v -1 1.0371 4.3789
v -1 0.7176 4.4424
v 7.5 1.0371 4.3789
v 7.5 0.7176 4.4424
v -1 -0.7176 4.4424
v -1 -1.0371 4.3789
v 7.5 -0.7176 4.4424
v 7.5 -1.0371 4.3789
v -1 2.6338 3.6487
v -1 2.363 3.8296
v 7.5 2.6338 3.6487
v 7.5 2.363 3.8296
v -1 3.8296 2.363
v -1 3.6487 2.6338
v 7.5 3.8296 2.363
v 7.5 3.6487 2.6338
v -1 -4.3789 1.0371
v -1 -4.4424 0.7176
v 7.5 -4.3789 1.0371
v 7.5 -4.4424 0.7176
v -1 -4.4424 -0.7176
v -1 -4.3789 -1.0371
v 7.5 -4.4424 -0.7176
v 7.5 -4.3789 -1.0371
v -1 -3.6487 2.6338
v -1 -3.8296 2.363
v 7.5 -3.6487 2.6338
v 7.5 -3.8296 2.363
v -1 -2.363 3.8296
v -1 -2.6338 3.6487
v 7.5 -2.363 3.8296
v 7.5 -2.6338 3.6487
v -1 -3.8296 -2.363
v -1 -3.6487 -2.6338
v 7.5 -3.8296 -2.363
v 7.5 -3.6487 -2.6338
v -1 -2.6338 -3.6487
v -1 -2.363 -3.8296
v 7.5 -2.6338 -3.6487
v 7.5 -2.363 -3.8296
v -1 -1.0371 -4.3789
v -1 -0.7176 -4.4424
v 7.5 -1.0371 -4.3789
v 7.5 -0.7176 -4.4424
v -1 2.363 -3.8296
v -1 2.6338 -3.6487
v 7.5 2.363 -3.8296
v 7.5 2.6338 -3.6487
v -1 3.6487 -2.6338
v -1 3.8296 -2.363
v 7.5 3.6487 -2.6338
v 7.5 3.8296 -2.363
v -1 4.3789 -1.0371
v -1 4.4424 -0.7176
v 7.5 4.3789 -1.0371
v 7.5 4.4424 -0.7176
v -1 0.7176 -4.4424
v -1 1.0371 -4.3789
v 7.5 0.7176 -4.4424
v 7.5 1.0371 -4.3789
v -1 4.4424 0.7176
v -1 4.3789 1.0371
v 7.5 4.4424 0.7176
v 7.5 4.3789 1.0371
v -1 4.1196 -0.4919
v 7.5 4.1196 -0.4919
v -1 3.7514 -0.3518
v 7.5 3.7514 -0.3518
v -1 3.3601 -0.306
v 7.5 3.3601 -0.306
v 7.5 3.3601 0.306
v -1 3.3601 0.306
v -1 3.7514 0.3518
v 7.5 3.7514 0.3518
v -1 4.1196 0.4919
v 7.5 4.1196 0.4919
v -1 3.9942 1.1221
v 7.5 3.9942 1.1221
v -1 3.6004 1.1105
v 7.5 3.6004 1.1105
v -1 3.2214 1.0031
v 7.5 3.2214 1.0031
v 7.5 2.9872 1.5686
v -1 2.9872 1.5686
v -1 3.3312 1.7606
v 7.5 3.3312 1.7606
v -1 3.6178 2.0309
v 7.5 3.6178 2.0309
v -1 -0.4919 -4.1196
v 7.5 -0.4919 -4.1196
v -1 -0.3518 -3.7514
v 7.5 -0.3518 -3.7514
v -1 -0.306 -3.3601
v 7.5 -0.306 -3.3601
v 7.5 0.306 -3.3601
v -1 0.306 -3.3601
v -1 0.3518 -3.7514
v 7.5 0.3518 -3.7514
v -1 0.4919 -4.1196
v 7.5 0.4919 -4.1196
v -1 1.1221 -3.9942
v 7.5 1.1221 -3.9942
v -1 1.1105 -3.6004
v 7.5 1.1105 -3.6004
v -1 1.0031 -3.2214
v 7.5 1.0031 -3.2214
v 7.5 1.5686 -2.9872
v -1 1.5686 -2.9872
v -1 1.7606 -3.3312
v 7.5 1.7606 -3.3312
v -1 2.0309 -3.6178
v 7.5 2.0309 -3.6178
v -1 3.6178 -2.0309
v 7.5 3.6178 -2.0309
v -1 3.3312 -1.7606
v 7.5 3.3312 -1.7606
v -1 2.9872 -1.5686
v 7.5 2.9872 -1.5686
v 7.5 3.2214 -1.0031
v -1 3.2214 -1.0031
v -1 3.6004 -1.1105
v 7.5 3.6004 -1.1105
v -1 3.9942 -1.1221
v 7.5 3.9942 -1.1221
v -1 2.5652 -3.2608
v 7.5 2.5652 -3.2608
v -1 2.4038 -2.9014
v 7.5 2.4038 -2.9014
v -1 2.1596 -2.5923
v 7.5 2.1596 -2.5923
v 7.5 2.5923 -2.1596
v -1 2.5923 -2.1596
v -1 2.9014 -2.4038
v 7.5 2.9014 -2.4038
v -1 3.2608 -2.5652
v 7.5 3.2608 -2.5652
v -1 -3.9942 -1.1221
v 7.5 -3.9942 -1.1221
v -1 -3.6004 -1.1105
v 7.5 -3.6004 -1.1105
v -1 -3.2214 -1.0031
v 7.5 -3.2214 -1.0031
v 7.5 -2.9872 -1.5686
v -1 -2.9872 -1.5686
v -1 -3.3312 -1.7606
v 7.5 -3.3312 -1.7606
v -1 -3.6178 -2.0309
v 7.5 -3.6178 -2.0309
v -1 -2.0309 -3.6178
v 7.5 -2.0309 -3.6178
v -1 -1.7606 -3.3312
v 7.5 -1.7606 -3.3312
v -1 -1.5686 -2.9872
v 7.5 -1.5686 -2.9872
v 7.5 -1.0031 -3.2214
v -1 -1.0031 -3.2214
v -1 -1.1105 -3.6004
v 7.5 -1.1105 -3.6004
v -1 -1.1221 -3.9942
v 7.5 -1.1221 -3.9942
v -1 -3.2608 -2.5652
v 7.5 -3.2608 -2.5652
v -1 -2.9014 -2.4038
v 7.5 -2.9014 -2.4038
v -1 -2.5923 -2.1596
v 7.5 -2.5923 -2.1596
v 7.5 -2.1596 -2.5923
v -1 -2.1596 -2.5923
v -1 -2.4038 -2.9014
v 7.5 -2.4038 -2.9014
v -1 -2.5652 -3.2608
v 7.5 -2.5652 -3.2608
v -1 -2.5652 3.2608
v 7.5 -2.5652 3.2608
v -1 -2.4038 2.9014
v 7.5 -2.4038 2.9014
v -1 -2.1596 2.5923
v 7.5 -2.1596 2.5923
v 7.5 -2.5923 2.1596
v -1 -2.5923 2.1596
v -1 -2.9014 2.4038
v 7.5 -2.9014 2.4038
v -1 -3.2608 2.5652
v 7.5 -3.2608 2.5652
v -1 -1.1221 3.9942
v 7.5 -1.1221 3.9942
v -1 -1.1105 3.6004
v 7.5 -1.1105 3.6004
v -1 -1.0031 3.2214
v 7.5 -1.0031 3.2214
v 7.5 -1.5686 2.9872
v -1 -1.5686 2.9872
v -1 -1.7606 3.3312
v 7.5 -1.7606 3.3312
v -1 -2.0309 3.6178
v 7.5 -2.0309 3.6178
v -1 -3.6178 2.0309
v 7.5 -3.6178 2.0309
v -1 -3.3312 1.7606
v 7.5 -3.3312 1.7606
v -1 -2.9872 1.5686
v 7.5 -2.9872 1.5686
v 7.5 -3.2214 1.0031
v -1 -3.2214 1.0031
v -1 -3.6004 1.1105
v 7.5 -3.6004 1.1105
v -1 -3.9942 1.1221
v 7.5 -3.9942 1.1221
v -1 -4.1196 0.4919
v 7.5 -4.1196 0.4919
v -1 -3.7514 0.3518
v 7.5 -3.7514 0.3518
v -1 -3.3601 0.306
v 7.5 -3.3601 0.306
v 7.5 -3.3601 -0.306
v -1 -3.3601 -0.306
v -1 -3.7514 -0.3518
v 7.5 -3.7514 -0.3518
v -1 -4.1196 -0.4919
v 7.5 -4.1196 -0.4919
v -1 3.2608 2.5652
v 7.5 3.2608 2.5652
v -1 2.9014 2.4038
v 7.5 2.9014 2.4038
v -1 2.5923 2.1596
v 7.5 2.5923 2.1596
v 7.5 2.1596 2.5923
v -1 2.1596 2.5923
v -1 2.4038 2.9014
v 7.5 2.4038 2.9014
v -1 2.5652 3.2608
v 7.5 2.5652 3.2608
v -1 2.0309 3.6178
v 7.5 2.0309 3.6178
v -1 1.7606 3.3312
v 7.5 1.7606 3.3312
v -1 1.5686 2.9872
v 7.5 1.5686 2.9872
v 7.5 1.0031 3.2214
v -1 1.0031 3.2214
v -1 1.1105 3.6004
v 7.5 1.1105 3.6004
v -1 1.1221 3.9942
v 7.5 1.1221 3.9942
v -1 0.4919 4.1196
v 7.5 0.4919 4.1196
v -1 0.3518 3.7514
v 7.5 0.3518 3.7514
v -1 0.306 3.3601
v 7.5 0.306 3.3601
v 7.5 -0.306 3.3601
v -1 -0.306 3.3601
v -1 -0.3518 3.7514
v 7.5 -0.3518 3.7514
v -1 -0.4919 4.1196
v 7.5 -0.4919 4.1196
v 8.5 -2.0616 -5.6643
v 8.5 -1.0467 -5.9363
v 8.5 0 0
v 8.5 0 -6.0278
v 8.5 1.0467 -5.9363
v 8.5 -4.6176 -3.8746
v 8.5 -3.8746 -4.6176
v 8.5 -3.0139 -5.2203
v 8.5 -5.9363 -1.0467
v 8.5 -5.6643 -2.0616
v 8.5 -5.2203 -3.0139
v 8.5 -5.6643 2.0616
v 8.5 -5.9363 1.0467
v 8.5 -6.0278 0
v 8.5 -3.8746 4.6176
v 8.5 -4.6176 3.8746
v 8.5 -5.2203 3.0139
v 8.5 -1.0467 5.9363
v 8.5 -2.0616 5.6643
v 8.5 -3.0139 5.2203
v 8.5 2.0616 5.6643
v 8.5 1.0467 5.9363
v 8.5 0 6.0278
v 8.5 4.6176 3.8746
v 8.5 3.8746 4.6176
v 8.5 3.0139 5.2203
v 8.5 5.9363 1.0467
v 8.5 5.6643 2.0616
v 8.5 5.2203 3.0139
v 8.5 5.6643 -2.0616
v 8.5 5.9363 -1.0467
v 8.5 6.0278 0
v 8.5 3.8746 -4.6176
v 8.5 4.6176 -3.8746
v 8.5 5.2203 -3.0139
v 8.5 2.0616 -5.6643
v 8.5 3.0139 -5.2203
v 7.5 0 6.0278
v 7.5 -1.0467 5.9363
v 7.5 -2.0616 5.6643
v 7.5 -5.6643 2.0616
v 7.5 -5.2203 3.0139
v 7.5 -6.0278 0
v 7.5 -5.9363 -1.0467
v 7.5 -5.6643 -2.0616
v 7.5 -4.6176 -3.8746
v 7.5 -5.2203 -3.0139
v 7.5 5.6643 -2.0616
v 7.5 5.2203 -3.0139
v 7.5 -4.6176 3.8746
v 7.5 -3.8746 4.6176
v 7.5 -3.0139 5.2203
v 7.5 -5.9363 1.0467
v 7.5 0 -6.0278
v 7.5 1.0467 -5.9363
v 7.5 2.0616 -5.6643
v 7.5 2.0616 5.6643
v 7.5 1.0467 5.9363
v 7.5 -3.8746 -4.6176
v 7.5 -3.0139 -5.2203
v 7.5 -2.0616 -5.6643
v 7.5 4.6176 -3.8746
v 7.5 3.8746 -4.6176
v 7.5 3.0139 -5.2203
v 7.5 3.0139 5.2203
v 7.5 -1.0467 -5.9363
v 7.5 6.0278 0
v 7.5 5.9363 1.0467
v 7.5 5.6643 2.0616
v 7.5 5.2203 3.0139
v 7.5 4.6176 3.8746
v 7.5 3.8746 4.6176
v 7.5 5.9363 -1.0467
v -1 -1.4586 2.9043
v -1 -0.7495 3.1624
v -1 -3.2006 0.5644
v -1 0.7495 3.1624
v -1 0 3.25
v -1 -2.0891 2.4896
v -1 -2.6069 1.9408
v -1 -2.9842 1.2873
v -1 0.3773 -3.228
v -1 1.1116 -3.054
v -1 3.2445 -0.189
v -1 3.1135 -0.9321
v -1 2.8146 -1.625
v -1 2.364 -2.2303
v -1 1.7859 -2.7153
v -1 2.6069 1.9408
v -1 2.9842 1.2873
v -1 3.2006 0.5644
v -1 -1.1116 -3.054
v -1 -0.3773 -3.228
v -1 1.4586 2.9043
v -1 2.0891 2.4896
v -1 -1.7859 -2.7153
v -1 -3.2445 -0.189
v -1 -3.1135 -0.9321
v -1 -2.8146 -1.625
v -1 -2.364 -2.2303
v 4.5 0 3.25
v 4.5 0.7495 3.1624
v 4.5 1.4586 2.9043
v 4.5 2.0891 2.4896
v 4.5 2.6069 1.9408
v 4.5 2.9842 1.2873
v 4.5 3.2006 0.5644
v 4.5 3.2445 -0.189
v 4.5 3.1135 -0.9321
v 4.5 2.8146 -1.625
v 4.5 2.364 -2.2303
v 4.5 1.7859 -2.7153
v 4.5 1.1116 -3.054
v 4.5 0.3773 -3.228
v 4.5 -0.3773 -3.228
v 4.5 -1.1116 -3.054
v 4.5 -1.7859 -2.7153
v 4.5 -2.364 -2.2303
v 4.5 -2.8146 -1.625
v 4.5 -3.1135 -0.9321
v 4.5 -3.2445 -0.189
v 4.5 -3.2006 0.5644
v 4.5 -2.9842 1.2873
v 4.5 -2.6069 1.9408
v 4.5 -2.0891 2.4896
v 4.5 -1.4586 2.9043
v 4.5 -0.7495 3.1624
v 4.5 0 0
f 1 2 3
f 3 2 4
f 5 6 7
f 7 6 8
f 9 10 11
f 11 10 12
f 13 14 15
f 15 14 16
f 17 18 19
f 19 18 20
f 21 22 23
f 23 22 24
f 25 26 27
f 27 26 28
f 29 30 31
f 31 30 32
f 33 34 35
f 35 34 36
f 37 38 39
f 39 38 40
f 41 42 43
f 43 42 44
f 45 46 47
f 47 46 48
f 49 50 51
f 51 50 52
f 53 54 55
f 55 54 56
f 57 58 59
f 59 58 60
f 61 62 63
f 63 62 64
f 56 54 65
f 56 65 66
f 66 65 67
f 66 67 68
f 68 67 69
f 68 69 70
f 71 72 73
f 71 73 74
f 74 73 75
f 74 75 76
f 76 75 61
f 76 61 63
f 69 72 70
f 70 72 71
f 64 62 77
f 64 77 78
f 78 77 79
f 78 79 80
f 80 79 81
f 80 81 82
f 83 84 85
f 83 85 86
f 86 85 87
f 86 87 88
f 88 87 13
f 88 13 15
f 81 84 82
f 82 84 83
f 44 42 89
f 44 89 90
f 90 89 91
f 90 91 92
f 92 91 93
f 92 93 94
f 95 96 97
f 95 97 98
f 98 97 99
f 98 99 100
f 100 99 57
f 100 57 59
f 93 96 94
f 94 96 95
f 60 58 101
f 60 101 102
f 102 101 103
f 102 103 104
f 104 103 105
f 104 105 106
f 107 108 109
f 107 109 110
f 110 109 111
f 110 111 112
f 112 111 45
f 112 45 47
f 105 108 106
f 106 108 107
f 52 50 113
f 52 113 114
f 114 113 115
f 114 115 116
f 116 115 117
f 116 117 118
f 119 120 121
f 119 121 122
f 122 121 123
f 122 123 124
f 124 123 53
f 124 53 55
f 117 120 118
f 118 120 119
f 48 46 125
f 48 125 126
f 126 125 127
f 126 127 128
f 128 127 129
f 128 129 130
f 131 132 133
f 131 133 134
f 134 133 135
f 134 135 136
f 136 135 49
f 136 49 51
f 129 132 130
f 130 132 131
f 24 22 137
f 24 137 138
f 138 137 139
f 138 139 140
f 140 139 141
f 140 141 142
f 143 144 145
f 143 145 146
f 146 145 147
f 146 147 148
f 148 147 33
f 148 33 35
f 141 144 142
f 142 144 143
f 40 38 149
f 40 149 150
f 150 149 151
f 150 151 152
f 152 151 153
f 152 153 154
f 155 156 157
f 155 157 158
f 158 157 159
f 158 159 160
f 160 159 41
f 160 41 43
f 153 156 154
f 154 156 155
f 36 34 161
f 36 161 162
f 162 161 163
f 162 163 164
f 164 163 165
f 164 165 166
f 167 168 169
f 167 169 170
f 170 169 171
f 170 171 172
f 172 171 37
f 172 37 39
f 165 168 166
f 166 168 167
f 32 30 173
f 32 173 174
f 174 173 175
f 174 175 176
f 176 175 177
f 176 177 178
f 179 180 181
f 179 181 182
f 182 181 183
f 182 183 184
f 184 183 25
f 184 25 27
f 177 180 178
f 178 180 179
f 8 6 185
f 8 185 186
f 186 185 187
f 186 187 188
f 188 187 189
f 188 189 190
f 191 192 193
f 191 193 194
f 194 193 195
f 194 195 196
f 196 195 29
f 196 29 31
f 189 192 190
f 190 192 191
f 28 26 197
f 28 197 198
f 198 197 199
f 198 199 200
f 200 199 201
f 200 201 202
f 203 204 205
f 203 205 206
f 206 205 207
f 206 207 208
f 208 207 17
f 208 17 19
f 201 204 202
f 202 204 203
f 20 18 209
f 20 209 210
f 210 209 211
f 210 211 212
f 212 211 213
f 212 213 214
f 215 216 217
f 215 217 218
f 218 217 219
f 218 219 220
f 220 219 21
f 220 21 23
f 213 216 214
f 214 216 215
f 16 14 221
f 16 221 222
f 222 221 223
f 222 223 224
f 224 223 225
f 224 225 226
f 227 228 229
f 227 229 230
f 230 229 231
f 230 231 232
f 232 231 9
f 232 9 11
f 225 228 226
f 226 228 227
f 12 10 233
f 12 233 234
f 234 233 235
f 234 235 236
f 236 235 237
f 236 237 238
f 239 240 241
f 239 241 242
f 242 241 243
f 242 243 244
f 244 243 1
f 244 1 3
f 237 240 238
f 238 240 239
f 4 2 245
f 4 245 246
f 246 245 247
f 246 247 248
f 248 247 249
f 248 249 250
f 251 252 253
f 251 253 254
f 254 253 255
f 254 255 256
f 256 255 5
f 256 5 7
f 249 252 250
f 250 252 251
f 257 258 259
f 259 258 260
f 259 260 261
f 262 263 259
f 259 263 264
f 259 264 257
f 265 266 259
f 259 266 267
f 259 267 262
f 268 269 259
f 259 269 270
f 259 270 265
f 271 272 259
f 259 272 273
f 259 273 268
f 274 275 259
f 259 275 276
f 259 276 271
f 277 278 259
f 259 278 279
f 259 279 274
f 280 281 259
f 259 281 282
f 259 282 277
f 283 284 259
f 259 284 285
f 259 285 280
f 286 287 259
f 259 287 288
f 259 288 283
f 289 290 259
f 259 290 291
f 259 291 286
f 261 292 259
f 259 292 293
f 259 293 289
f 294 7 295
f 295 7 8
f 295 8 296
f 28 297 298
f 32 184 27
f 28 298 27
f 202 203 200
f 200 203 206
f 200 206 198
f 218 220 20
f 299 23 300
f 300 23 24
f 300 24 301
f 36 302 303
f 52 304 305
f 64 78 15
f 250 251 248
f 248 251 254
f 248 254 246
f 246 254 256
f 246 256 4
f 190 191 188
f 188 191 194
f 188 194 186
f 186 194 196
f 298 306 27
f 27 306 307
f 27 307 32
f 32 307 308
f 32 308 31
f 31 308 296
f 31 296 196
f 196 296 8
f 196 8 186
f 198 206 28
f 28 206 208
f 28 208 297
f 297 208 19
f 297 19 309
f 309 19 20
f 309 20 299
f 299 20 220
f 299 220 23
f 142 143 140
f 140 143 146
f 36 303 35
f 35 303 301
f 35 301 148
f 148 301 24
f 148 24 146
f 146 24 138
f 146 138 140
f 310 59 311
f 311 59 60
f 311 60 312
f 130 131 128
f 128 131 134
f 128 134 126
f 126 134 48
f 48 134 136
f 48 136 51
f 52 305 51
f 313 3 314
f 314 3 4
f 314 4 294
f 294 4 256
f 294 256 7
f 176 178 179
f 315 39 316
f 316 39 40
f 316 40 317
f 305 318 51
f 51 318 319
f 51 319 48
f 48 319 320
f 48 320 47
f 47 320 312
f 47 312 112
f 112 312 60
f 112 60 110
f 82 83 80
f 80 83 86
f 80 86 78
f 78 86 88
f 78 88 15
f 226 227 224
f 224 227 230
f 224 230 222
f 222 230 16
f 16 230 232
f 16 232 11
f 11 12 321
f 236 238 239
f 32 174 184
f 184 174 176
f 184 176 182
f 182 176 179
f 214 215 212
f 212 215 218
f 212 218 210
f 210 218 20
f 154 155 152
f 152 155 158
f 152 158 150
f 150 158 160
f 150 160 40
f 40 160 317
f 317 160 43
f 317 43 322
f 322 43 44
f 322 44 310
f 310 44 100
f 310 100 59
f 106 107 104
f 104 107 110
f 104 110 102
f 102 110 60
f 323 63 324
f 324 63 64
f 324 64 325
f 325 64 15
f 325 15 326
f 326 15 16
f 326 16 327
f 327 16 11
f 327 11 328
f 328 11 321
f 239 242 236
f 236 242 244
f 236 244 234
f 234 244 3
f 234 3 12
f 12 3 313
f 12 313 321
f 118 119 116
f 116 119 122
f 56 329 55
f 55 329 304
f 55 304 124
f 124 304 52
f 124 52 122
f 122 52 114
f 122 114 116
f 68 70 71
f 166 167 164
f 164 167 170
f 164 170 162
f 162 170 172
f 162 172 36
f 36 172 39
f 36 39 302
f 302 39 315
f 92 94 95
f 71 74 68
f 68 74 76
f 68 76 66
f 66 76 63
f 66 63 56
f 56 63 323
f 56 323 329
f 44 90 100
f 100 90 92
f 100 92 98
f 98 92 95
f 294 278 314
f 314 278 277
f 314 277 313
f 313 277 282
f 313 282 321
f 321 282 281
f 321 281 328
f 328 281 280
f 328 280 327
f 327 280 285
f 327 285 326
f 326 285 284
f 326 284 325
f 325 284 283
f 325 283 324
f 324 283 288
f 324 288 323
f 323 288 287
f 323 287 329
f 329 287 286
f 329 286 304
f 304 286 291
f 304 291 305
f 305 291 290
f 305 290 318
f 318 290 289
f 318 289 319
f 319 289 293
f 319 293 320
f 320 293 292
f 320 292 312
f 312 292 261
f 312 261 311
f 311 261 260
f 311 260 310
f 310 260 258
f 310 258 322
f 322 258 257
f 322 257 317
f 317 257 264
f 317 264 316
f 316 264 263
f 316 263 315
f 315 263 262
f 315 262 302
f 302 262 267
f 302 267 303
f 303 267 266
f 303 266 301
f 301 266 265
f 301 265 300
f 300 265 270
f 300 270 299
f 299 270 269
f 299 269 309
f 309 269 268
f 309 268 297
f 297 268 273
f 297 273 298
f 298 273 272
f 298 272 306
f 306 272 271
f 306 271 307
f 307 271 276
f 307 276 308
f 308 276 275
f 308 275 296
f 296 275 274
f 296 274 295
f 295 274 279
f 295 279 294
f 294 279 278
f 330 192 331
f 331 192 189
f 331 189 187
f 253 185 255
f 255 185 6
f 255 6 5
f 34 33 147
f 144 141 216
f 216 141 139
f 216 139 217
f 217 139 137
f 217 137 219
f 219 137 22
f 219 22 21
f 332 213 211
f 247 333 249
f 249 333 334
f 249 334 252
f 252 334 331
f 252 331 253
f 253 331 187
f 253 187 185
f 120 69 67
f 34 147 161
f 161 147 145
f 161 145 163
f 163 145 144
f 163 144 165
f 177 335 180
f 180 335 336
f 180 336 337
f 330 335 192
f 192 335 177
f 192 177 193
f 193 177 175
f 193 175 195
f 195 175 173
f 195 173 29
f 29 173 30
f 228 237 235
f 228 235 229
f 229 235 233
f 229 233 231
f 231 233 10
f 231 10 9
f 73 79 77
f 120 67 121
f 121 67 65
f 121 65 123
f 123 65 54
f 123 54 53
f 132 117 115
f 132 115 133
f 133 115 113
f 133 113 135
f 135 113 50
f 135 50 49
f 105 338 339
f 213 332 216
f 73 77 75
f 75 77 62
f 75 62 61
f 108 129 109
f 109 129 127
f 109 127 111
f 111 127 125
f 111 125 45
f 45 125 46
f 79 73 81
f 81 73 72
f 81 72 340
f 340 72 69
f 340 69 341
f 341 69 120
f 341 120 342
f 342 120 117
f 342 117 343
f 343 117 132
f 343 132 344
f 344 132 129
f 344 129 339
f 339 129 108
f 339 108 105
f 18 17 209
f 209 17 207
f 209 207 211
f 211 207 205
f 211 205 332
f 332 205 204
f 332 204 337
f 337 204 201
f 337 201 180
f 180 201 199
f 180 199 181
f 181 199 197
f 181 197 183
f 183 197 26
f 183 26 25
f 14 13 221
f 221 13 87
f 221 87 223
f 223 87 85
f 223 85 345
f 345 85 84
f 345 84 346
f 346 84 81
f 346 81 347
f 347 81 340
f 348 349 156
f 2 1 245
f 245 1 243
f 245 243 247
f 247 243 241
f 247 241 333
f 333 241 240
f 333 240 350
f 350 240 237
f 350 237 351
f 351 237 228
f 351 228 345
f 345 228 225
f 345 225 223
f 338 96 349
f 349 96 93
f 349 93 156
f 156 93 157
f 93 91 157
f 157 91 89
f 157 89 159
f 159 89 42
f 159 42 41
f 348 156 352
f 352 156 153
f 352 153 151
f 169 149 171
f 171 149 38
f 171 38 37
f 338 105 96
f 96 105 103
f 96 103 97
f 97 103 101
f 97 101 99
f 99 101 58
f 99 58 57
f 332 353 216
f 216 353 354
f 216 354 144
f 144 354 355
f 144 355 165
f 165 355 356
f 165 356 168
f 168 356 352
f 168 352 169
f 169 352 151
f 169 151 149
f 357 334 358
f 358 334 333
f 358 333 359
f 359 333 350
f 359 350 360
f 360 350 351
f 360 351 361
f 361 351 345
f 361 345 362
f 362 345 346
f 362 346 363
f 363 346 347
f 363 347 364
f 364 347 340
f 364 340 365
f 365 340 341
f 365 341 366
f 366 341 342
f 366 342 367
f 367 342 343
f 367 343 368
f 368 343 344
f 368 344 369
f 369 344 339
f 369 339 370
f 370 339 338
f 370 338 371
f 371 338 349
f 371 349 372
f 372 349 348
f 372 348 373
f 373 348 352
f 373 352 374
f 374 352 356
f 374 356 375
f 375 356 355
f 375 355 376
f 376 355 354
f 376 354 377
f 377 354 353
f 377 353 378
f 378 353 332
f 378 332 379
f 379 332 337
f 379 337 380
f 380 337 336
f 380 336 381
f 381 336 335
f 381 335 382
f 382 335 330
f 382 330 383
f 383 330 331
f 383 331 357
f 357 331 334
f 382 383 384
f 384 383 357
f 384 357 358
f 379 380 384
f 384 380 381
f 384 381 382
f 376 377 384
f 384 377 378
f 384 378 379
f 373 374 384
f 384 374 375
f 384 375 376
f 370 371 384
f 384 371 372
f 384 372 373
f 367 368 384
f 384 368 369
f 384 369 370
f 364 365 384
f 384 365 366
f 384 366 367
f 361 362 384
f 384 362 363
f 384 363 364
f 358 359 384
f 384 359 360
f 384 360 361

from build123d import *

# Parameters (mm, degrees)
BASPROSKE_W             = 7.5
BASPROSKE_H             = 4.5
TOOTHCUT_DEPTH          = 10.836157786
TEETHCUTS_COUNT         = 16
TEETHCUTS_ANGLE         = 337.5
BORSKE_R                = 2.5
BORE_DEPTH              = 50.0000508
ESQUISSE5_R             = 6.027848577
ESQUISSE5_R_2           = 2.85
BOSS_EXTRU_4_DEPTH      = 1
BOSS_EXTRU_6_START      = -8.5
ESQUISSE7_R             = 3.00711341
BOSS_EXTRU_6_DEPTH      = 8.5
BOSS_EXTRU_7_START      = 1
BOSS_EXTRU_7_DEPTH      = 1
ESQUISSE9_R             = 3.25
ENL_V_MAT_EXTRU_1_DEPTH = 5.5


with BuildPart() as part:
    # BasProSke → Base-Revolve (revolve)
    with BuildSketch(Plane(origin=(0, 0, 0), x_dir=(1, 0, 0), z_dir=(0, 1, 0)), mode=Mode.PRIVATE) as base_revolve_sk:
        with Locations((3.75, 2.25)):
            Rectangle(BASPROSKE_W, BASPROSKE_H)
    revolve(base_revolve_sk.sketch.rotate(Axis((-10, 0, 0), (1, 0, 0)), 180), axis=Axis((-10, 0, 0), (1, 0, 0)))

    # TooCutSke → ToothCut (cut, through all)
    with BuildSketch(Plane(origin=(0, 0, 0), x_dir=(0, 0, -1), z_dir=(1, 0, 0))):
        with BuildLine():
            ThreePointArc((0.306025637, 3.360092902), (0, 3.374), (-0.306025637, 3.360092902))
            ThreePointArc((-0.306025637, 3.360092902), (-0.415941512, 3.953968919), (-0.738171669, 4.464789776))
            ThreePointArc((-0.738171669, 4.464789776), (0, 4.5254), (0.738171669, 4.464789776))
            ThreePointArc((0.738171669, 4.464789776), (0.415941512, 3.953968919), (0.306025637, 3.360092902))
        make_face()
    toothcut = extrude(amount=TOOTHCUT_DEPTH, mode=Mode.SUBTRACT)

    # TeethCuts: ToothCut ×16 about axis
    teethcuts_axis = Axis((-10, 0, 0), (1, 0, 0))
    for i in range(1, TEETHCUTS_COUNT):
        add(toothcut.rotate(teethcuts_axis, i * TEETHCUTS_ANGLE / (TEETHCUTS_COUNT - 1)), mode=Mode.SUBTRACT)

    # BorSke → Bore (cut, symmetric)
    with BuildSketch(Plane(origin=(0, 0, 0), x_dir=(0, 0, -1), z_dir=(1, 0, 0))):
        with Locations(Location((0, 0, 0), (0, 0, 180))):
            Circle(BORSKE_R)
    extrude(amount=BORE_DEPTH, both=True, mode=Mode.SUBTRACT)

    # Esquisse5 → Boss.-Extru.4 (add)
    with BuildSketch(Plane(origin=(7.5, 0, 0), x_dir=(0, 0, -1), z_dir=(1, 0, 0))):
        Circle(ESQUISSE5_R)
        Circle(ESQUISSE5_R_2, mode=Mode.SUBTRACT)
    extrude(amount=BOSS_EXTRU_4_DEPTH)

    # Esquisse7 → Boss.-Extru.6 (add)
    with BuildSketch(Plane.ZY.offset(BOSS_EXTRU_6_START)):
        Circle(ESQUISSE7_R)
    extrude(amount=BOSS_EXTRU_6_DEPTH)

    # Esquisse8 → Boss.-Extru.7 (add)
    with BuildSketch(Plane.ZY.offset(BOSS_EXTRU_7_START)):
        with BuildLine():
            ThreePointArc((3.360092902, 0.306025637), (3.939792443, 0.410473293), (4.442413227, 0.717610424))
            ThreePointArc((4.442413227, 0.717610424), (4.413533762, 0.877906449), (4.378872276, 1.037052359))
            ThreePointArc((4.378872276, 1.037052359), (3.796974929, 1.128465421), (3.221432001, 1.003121062))
            ThreePointArc((3.221432001, 1.003121062), (3.117169543, 1.291173901), (2.987210118, 1.568582707))
            ThreePointArc((2.987210118, 1.568582707), (3.482812272, 1.886921168), (3.829637035, 2.363023525))
            ThreePointArc((3.829637035, 2.363023525), (3.741613255, 2.500066049), (3.648687715, 2.633833321))
            ThreePointArc((3.648687715, 2.633833321), (3.076102401, 2.495605504), (2.59233728, 2.159551673))
            ThreePointArc((2.59233728, 2.159551673), (2.38577828, 2.38577828), (2.159551673, 2.59233728))
            ThreePointArc((2.159551673, 2.59233728), (2.495605504, 3.076102401), (2.633833321, 3.648687715))
            ThreePointArc((2.633833321, 3.648687715), (2.500066049, 3.741613255), (2.363023525, 3.829637035))
            ThreePointArc((2.363023525, 3.829637035), (1.886921168, 3.482812272), (1.568582707, 2.987210118))
            ThreePointArc((1.568582707, 2.987210118), (1.291173901, 3.117169543), (1.003121062, 3.221432001))
            ThreePointArc((1.003121062, 3.221432001), (1.128465421, 3.796974929), (1.037052359, 4.378872276))
            ThreePointArc((1.037052359, 4.378872276), (0.877906449, 4.413533762), (0.717610424, 4.442413227))
            ThreePointArc((0.717610424, 4.442413227), (0.410473293, 3.939792443), (0.306025637, 3.360092902))
            ThreePointArc((0.306025637, 3.360092902), (0, 3.374), (-0.306025637, 3.360092902))
            ThreePointArc((-0.306025637, 3.360092902), (-0.410473293, 3.939792443), (-0.717610424, 4.442413227))
            ThreePointArc((-0.717610424, 4.442413227), (-0.877906449, 4.413533762), (-1.037052359, 4.378872276))
            ThreePointArc((-1.037052359, 4.378872276), (-1.128465421, 3.796974929), (-1.003121062, 3.221432001))
            ThreePointArc((-1.003121062, 3.221432001), (-1.291173901, 3.117169543), (-1.568582707, 2.987210118))
            ThreePointArc((-1.568582707, 2.987210118), (-1.886921168, 3.482812272), (-2.363023525, 3.829637035))
            ThreePointArc((-2.363023525, 3.829637035), (-2.500066049, 3.741613255), (-2.633833321, 3.648687715))
            ThreePointArc((-2.633833321, 3.648687715), (-2.495605504, 3.076102401), (-2.159551673, 2.59233728))
            ThreePointArc((-2.159551673, 2.59233728), (-2.38577828, 2.38577828), (-2.59233728, 2.159551673))
            ThreePointArc((-2.59233728, 2.159551673), (-3.076102401, 2.495605504), (-3.648687715, 2.633833321))
            ThreePointArc((-3.648687715, 2.633833321), (-3.741613255, 2.500066049), (-3.829637035, 2.363023525))
            ThreePointArc((-3.829637035, 2.363023525), (-3.482812272, 1.886921168), (-2.987210118, 1.568582707))
            ThreePointArc((-2.987210118, 1.568582707), (-3.117169543, 1.291173901), (-3.221432001, 1.003121062))
            ThreePointArc((-3.221432001, 1.003121062), (-3.796974929, 1.128465421), (-4.378872276, 1.037052359))
            ThreePointArc((-4.378872276, 1.037052359), (-4.413533762, 0.877906449), (-4.442413227, 0.717610424))
            ThreePointArc((-4.442413227, 0.717610424), (-3.939792443, 0.410473293), (-3.360092902, 0.306025637))
            ThreePointArc((-3.360092902, 0.306025637), (-3.374, 0), (-3.360092902, -0.306025637))
            ThreePointArc((-3.360092902, -0.306025637), (-3.939792443, -0.410473293), (-4.442413227, -0.717610424))
            ThreePointArc((-4.442413227, -0.717610424), (-4.413533762, -0.877906449), (-4.378872276, -1.037052359))
            ThreePointArc((-4.378872276, -1.037052359), (-3.796974929, -1.128465421), (-3.221432001, -1.003121062))
            ThreePointArc((-3.221432001, -1.003121062), (-3.117169543, -1.291173901), (-2.987210118, -1.568582707))
            ThreePointArc((-2.987210118, -1.568582707), (-3.482812272, -1.886921168), (-3.829637035, -2.363023525))
            ThreePointArc((-3.829637035, -2.363023525), (-3.741613255, -2.500066049), (-3.648687715, -2.633833321))
            ThreePointArc((-3.648687715, -2.633833321), (-3.076102401, -2.495605504), (-2.59233728, -2.159551673))
            ThreePointArc((-2.59233728, -2.159551673), (-2.38577828, -2.38577828), (-2.159551673, -2.59233728))
            ThreePointArc((-2.159551673, -2.59233728), (-2.495605504, -3.076102401), (-2.633833321, -3.648687715))
            ThreePointArc((-2.633833321, -3.648687715), (-2.500066049, -3.741613255), (-2.363023525, -3.829637035))
            ThreePointArc((-2.363023525, -3.829637035), (-1.886921168, -3.482812272), (-1.568582707, -2.987210118))
            ThreePointArc((-1.568582707, -2.987210118), (-1.291173901, -3.117169543), (-1.003121062, -3.221432001))
            ThreePointArc((-1.003121062, -3.221432001), (-1.128465421, -3.796974929), (-1.037052359, -4.378872276))
            ThreePointArc((-1.037052359, -4.378872276), (-0.877906449, -4.413533762), (-0.717610424, -4.442413227))
            ThreePointArc((-0.717610424, -4.442413227), (-0.410473293, -3.939792443), (-0.306025637, -3.360092902))
            ThreePointArc((-0.306025637, -3.360092902), (0, -3.374), (0.306025637, -3.360092902))
            ThreePointArc((0.306025637, -3.360092902), (0.410473293, -3.939792443), (0.717610424, -4.442413227))
            ThreePointArc((0.717610424, -4.442413227), (0.877906449, -4.413533762), (1.037052359, -4.378872276))
            ThreePointArc((1.037052359, -4.378872276), (1.128465421, -3.796974929), (1.003121062, -3.221432001))
            ThreePointArc((1.003121062, -3.221432001), (1.291173901, -3.117169543), (1.568582707, -2.987210118))
            ThreePointArc((1.568582707, -2.987210118), (1.886921168, -3.482812272), (2.363023525, -3.829637035))
            ThreePointArc((2.363023525, -3.829637035), (2.500066049, -3.741613255), (2.633833321, -3.648687715))
            ThreePointArc((2.633833321, -3.648687715), (2.495605504, -3.076102401), (2.159551673, -2.59233728))
            ThreePointArc((2.159551673, -2.59233728), (2.38577828, -2.38577828), (2.59233728, -2.159551673))
            ThreePointArc((2.59233728, -2.159551673), (3.076102401, -2.495605504), (3.648687715, -2.633833321))
            ThreePointArc((3.648687715, -2.633833321), (3.741613255, -2.500066049), (3.829637035, -2.363023525))
            ThreePointArc((3.829637035, -2.363023525), (3.482812272, -1.886921168), (2.987210118, -1.568582707))
            ThreePointArc((2.987210118, -1.568582707), (3.117169543, -1.291173901), (3.221432001, -1.003121062))
            ThreePointArc((3.221432001, -1.003121062), (3.796974929, -1.128465421), (4.378872276, -1.037052359))
            ThreePointArc((4.378872276, -1.037052359), (4.413533762, -0.877906449), (4.442413227, -0.717610424))
            ThreePointArc((4.442413227, -0.717610424), (3.939792443, -0.410473293), (3.360092902, -0.306025637))
            ThreePointArc((3.360092902, -0.306025637), (3.374, 0), (3.360092902, 0.306025637))
        make_face()
    extrude(amount=-BOSS_EXTRU_7_DEPTH)

    # Esquisse9 → Enlèv. mat.-Extru.1 (cut)
    with BuildSketch(Plane.ZY.offset(1)):
        Circle(ESQUISSE9_R)
    extrude(amount=-ENL_V_MAT_EXTRU_1_DEPTH, mode=Mode.SUBTRACT)


solid = part.part
